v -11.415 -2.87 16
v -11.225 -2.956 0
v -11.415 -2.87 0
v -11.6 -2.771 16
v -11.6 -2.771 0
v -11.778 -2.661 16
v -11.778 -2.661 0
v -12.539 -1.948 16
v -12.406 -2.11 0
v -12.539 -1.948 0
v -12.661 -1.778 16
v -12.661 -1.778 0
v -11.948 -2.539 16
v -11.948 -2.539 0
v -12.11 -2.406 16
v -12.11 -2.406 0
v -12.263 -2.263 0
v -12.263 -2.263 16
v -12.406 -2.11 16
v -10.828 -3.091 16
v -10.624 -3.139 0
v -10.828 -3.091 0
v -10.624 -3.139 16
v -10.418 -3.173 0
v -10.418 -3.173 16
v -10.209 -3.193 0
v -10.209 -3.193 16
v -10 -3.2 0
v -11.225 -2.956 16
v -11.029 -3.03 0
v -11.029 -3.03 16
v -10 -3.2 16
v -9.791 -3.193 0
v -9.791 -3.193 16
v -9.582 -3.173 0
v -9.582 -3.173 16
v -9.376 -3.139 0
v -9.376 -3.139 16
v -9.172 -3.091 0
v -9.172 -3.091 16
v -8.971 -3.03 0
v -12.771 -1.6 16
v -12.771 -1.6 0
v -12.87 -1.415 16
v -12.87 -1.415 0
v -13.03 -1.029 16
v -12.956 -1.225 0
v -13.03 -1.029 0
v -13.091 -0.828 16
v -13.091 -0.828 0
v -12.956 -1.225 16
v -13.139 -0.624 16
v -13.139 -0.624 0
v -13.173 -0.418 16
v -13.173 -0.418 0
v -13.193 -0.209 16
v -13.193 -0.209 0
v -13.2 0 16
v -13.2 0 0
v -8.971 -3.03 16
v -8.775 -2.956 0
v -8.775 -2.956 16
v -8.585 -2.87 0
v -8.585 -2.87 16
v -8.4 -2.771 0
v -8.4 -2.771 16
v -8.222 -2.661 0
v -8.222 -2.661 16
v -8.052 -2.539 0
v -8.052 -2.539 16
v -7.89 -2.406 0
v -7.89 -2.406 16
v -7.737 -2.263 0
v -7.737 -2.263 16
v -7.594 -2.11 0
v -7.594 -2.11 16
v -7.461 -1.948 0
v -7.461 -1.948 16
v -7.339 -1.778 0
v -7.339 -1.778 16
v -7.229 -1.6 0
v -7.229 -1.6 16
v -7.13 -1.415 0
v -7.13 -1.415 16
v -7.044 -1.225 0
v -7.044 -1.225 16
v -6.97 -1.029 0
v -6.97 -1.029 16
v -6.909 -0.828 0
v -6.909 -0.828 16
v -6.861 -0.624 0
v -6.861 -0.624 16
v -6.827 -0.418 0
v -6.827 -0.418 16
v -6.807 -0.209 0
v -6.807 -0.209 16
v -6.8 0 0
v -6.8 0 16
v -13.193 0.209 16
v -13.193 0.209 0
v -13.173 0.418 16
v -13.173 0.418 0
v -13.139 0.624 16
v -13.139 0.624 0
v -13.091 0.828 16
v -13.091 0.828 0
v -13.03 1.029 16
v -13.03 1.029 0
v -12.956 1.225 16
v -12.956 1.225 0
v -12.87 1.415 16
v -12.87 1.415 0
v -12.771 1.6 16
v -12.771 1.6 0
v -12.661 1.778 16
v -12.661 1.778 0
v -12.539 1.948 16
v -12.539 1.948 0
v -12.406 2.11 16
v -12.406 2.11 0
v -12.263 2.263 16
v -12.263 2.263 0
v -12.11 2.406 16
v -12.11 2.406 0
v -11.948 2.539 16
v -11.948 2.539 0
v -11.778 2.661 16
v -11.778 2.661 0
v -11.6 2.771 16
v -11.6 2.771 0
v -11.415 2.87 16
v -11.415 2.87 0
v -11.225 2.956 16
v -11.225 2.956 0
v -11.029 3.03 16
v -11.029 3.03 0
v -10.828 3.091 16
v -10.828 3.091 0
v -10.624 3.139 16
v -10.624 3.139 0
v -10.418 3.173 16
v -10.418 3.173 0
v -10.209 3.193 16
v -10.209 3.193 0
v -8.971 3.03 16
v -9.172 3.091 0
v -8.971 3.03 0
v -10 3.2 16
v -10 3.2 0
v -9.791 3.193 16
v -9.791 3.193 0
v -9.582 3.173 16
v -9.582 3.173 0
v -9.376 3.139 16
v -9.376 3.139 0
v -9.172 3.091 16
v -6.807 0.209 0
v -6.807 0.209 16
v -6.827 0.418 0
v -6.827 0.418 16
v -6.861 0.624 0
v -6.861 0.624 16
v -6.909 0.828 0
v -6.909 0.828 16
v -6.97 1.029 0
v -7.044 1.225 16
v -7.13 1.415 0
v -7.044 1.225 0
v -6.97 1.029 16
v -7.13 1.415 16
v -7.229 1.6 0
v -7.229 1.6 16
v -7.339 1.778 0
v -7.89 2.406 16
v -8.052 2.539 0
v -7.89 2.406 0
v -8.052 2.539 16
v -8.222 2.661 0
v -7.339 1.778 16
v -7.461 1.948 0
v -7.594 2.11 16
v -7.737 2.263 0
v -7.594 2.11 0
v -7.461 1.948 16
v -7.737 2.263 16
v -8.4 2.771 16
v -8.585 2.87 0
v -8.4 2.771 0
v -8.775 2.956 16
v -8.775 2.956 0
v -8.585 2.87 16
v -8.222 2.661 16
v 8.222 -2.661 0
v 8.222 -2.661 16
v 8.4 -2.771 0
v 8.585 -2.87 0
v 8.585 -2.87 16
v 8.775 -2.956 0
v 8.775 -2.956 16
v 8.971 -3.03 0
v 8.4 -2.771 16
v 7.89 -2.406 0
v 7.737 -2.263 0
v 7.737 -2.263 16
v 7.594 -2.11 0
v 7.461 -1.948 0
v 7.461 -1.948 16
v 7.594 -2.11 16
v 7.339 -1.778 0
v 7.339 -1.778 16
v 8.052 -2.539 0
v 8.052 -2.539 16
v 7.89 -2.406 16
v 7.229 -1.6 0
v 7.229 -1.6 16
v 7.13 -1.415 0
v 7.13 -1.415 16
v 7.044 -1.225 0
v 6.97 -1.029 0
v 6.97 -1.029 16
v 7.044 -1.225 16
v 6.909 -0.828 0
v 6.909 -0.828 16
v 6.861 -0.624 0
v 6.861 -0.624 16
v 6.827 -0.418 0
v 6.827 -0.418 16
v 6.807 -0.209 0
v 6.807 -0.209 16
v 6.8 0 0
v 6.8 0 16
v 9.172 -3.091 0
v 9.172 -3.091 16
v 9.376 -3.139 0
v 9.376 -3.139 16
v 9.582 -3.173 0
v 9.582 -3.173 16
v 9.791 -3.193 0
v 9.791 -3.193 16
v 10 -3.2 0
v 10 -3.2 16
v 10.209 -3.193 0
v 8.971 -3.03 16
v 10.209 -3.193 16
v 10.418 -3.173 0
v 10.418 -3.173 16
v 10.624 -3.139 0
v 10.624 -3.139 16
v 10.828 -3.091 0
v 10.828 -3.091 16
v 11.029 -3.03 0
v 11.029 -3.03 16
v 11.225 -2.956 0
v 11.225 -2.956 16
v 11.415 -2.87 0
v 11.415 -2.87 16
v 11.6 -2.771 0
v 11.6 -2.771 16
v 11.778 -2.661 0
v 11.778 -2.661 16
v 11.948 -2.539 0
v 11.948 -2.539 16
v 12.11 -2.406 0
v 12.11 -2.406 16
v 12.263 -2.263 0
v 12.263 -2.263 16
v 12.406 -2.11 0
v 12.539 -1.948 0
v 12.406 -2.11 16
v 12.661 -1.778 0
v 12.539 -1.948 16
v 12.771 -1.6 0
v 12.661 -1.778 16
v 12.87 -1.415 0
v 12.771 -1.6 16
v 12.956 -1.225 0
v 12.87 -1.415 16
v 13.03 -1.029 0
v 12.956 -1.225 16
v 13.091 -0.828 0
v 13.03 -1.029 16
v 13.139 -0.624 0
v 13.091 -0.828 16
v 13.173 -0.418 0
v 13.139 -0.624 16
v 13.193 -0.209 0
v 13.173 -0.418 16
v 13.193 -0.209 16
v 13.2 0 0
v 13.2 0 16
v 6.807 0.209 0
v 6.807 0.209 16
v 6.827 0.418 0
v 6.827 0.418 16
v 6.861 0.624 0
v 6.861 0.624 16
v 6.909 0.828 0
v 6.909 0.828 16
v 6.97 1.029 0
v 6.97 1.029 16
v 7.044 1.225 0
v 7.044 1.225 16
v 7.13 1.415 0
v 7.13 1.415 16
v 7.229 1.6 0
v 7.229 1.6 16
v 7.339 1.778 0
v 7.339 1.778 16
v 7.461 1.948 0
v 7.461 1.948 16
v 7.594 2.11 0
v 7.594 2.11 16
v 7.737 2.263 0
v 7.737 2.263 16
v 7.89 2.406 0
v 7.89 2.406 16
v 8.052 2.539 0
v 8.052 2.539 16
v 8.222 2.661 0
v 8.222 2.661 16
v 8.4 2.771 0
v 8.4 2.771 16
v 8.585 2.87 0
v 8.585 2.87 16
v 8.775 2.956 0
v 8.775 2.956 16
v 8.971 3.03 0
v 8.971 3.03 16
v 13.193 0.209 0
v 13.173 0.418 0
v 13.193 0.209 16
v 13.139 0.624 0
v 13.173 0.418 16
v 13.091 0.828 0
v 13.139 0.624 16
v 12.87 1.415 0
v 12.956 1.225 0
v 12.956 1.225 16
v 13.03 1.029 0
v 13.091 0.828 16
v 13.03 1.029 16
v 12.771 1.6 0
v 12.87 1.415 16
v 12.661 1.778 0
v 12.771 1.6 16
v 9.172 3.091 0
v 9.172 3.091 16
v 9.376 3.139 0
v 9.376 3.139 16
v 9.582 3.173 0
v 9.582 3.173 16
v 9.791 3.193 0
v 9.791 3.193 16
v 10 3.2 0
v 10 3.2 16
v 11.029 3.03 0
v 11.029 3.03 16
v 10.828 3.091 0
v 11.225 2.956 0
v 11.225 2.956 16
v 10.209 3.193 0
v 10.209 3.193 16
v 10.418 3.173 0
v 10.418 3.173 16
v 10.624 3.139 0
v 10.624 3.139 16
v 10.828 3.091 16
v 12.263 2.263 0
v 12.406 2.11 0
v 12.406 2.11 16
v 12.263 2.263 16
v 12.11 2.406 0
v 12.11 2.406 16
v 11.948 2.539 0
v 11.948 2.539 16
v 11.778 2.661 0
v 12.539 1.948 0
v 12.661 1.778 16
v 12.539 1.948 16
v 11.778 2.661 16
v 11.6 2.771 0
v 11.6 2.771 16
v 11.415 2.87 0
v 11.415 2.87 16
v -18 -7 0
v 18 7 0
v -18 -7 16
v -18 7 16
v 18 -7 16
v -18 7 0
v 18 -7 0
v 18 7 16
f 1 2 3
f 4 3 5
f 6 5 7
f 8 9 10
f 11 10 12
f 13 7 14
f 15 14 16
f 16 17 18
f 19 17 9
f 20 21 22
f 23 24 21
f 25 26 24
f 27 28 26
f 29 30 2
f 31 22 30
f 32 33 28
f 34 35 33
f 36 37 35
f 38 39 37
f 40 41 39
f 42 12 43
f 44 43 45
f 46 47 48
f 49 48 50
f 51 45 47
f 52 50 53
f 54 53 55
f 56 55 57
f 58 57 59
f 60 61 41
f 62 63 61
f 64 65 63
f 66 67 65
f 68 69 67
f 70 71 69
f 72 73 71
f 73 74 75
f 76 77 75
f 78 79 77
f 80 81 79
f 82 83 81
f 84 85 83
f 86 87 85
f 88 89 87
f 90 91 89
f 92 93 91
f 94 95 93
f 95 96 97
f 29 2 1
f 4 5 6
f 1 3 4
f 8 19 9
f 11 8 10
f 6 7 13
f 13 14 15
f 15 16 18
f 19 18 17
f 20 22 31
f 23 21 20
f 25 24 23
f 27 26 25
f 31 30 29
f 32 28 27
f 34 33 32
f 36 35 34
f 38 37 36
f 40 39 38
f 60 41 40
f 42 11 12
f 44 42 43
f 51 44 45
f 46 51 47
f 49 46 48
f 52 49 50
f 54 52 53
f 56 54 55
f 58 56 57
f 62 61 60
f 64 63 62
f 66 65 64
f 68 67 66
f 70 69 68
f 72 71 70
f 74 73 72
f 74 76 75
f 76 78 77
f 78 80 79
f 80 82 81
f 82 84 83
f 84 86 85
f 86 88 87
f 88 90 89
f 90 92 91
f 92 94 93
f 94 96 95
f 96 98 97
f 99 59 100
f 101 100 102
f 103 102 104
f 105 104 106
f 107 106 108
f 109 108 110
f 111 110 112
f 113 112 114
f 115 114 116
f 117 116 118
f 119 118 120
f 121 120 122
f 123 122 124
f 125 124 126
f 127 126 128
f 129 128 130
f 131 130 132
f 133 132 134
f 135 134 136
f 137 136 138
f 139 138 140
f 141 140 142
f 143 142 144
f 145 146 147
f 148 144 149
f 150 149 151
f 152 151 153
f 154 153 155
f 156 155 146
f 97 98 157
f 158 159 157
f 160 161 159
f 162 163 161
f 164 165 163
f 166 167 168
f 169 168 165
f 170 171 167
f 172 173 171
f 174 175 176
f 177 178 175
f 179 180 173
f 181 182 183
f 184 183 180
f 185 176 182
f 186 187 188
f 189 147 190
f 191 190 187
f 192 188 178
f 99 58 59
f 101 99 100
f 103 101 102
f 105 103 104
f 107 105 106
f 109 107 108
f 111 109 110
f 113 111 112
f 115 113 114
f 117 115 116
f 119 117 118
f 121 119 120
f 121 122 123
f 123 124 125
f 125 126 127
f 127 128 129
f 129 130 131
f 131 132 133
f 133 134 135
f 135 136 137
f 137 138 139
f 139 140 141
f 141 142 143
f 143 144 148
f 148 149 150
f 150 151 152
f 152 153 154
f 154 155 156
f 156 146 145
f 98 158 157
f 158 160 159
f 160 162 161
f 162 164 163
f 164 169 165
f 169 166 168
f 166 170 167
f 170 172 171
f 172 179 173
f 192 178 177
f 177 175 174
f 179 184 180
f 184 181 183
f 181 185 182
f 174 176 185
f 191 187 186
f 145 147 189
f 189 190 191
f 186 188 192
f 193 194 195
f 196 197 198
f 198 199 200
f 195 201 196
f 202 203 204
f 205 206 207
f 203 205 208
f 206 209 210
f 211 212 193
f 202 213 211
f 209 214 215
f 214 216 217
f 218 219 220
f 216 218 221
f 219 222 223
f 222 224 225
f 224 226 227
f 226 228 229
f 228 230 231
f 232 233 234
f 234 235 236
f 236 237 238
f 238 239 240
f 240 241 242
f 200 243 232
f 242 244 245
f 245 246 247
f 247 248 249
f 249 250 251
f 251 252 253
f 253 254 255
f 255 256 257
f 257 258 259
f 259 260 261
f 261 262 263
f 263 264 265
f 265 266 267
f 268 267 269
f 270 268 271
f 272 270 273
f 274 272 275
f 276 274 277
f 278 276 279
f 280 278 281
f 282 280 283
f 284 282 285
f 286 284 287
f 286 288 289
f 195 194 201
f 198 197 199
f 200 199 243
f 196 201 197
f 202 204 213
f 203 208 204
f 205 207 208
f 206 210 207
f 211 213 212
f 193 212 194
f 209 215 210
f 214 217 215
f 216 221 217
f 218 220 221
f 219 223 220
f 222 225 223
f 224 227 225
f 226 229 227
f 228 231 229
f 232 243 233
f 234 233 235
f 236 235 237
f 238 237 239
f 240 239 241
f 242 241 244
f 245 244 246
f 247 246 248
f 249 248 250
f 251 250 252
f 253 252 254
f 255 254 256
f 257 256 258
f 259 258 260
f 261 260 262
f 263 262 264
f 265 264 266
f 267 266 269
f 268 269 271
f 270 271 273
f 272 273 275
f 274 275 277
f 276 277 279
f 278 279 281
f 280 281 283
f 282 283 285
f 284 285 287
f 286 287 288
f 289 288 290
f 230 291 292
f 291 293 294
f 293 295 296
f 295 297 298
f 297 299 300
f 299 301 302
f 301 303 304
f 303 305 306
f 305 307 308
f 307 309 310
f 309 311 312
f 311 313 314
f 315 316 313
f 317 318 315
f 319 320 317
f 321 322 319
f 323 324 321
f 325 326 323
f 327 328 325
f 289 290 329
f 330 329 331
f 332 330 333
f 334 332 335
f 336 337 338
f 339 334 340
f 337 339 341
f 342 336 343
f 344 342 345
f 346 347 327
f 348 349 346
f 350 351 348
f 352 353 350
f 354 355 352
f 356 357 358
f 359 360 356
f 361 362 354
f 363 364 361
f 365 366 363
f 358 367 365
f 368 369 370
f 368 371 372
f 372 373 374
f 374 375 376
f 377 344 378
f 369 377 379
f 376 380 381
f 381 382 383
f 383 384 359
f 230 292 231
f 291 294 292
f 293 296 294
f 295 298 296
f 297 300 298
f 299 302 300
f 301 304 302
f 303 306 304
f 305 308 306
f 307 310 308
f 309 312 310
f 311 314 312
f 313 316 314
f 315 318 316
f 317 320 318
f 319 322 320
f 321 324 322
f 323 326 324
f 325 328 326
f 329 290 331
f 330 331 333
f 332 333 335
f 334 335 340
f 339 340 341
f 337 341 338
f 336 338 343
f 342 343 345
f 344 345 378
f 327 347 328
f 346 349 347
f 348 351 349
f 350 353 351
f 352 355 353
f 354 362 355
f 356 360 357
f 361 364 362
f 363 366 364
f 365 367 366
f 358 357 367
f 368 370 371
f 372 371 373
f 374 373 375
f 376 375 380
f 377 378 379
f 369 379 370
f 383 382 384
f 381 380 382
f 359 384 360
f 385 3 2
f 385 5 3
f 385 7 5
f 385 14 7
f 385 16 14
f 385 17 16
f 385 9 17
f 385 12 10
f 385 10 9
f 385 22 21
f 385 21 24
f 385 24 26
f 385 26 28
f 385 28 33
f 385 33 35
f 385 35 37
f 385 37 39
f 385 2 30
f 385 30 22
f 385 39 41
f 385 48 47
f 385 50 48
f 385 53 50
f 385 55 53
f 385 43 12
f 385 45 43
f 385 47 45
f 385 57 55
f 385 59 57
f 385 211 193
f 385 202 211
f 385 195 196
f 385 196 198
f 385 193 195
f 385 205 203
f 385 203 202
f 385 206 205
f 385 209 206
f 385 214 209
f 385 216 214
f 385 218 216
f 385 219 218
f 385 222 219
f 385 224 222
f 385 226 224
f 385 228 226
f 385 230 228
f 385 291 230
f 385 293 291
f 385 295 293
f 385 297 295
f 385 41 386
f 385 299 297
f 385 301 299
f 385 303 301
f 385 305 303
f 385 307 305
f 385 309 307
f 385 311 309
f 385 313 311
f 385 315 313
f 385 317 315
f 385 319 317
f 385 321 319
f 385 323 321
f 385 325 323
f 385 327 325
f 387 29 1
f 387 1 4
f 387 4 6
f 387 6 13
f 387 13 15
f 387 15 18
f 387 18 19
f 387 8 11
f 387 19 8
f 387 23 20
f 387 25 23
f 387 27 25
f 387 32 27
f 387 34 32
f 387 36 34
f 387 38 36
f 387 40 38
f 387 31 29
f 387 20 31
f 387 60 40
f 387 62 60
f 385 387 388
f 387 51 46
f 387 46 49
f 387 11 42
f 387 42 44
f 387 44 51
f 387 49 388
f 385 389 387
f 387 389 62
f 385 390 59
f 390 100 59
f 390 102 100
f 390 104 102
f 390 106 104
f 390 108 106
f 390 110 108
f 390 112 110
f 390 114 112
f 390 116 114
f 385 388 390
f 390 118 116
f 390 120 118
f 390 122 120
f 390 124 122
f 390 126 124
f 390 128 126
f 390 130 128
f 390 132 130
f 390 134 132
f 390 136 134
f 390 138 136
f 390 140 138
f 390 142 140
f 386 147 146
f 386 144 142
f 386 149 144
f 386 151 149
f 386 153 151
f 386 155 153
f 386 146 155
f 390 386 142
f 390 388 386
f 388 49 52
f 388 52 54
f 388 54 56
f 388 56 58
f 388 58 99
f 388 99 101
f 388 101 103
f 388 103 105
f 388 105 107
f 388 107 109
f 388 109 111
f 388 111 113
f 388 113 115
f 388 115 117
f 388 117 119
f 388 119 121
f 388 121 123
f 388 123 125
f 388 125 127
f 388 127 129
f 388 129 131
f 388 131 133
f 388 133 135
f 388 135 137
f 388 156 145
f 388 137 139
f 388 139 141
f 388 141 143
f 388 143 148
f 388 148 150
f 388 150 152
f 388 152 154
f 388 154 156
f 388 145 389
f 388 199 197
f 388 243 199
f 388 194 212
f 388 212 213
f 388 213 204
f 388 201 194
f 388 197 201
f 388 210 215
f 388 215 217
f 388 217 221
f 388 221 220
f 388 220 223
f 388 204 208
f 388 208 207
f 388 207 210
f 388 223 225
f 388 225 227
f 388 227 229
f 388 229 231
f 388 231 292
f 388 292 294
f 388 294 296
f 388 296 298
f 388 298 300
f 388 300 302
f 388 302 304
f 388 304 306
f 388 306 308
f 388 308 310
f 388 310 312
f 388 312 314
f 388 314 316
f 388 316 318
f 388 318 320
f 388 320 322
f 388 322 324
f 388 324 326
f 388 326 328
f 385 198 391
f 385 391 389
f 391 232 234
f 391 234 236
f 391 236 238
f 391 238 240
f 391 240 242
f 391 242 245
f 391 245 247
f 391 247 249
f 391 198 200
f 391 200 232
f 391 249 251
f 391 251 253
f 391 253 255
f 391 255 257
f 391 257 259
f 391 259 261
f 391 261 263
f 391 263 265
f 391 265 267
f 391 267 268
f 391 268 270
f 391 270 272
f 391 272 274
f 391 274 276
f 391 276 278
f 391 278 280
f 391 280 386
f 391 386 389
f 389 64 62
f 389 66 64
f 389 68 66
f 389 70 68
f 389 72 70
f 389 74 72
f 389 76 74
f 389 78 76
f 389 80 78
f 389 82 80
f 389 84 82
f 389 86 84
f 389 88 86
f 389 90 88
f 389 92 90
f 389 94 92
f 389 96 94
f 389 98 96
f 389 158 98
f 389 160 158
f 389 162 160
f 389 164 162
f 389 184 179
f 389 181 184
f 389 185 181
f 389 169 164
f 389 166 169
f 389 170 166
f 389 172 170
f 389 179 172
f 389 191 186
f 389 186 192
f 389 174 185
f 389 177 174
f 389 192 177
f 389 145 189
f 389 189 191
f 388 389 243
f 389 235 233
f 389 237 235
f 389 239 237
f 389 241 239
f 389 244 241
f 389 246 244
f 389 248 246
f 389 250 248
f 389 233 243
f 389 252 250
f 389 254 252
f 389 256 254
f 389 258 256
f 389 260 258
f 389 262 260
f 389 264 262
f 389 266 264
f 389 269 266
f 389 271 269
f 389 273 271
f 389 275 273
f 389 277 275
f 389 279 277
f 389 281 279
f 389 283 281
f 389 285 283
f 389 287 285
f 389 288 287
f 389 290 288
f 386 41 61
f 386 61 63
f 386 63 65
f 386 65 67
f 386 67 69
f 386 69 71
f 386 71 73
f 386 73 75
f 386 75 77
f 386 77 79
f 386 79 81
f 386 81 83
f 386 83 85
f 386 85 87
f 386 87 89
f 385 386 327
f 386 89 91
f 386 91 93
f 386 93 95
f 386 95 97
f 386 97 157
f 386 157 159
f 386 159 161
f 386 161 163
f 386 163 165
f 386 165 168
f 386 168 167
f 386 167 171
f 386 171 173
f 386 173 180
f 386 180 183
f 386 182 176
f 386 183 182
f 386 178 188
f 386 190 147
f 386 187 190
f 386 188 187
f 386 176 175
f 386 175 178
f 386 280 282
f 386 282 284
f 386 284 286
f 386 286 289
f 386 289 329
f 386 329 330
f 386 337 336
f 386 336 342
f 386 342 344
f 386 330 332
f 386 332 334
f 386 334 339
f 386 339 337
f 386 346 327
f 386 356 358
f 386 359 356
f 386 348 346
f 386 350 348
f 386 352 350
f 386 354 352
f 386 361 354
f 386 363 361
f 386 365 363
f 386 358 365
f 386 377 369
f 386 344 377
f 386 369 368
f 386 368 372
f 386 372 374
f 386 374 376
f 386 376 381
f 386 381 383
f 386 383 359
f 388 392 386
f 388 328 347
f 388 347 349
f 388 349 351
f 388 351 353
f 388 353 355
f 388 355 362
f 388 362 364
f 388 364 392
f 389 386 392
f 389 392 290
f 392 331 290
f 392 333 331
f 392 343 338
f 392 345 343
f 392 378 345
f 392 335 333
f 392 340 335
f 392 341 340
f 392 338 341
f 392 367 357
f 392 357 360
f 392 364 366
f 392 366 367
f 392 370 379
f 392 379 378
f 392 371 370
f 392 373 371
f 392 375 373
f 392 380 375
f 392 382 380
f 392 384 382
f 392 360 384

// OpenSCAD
// file: design_params.scad
// ============================================================
// STARLING SHARED DESIGN PARAMETERS — single source of truth for
// every dimension two parts must agree on.
//
// Consumers:
//   - every part in cad/ does        include <design_params.scad>
//   - parts in cad/calibration/ do   include <../design_params.scad>
//   - scripts/check_params.py FAILS the build if any of these names
//     is re-declared anywhere else — change values HERE only.
//
// Keep this file to simple `name = value;` lines so the tooling can
// parse it. One-off experiments: `openscad -D name=value` beats the
// include, no need to edit this file.
// ============================================================

// --- The paper tube (bought part, consumable) ---
// BOTH diameters are measured, not derived from a nominal wall thickness:
// paper wall varies batch to batch, so the OD does not predict the bore.
// Print the two calibration gauges with every new batch of tube, and type
// the number engraved on the best-fitting variant in here.
tube_od     = 52.95;   // sleeves slide OVER this — cad/calibration/tube_fit_ring.scad
tube_id     = 46.95;   // plugs slide INTO this  — cad/calibration/tube_bore_gauge.scad
tube_length = 540;

// --- Printed-part fits ---
sleeve_clearance = 0;   // added to every sleeve bore diameter; tune via the fit ring
plug_clearance   = 0;   // subtracted from every plug OD; tune via the bore gauge
fit_tol          = 0.2; // clearance for printed slots/pockets
sleeve_wall      = 3;   // wall thickness of printed sleeves

// --- Wing spar chain (rib holes = adapter sockets = carbon rods) ---
spar_rod_d    = 6;     // carbon rod diameter
spar_hole_d   = 6.2;   // printed hole for that rod
spar_spacing  = 20;    // chordwise distance between the two spars
spar_y_offset = 1.5;   // spar line sits this far above the rib chord line
spar_x_pos    = 0.4;   // rear spar chord fraction (front spar sits
                       // spar_spacing further forward, at 20% on a 100 chord)
spar_socket_lift = 1;  // adapter socket floor sits this far above the sleeve
                       // bore — rods must never reach the paper tube or they
                       // jam against it and block the CG slide

// --- Wing geometry ---
rib_chord     = 100;
naca_code     = 2415;  // cambered lifting section
rib_thickness = 2;
skin_thickness = 5;    // foam-board skin (bought sheet); the skin cradle
                       // jig offsets the rib profile by this
servo_rib_thickness = 4; // the servo rib prints thicker — it reacts the whole
                         // servo/linkage load until the skin is glued on
tip_rib_flat  = 3;     // full-profile band at the tip rib's inboard face;
                       // the foam skin's outboard edge lands on it
tip_spar_socket = 6;   // blind spar-socket depth in the tip rib; the spar
                       // rods are cut so they END inside these sockets, so
                       // the assembly's spar length derives from this too
aileron_te_gap  = 2;   // extra TE crop beyond the hinge line so the aileron
                       // LE can swing under the taped top hinge (see
                       // cad/wing_rib.scad for the geometry rationale)

// --- Wing adapter <-> root rib interface ---
wing_tab_thickness = 11; // adapter tab (socket carrier; ribs sit outboard of it)
wing_tab_span      = 15; // how far the tab reaches out from the sleeve
adapter_length     = 40; // sleeve length = tab chord extent

// --- Wing span layout (per panel, X from the fuselage centerline) ---
// Span is a first-class tunable: resize the wing per mission and rod stock
// by editing these literals, then satisfy scripts/wing_check.py, which
// enforces the relationships between them (spar fit window, station order,
// arm-slot clearance) and prints the spar cavity so rods can be cut to
// match whatever stock is on hand.
rib_stations         = [47, 120, 200]; // full-chord standard ribs
wing_servo_station   = 280;  // servo rib REPLACES the row rib here
aileron_rib_stations = [360];// TE-cropped ribs inside the aileron span
aileron_root_station = 283;  // = wing_servo_station + servo_rib_thickness/2
                             //   + 1 mm gap (wing_check.py enforces this)
aileron_span         = 120;
tip_station          = 440;  // tip rib inboard face — THE span knob
spar_rod_len         = 417;  // carbon rod length per spar per side (cut from
                             // stock; one 500 mm kite rod covers this with a
                             // single cut) — wing_check.py verifies the fit

// --- Stations along the tube (assembly; wing slides for CG trim) ---
wing_station       = 300; // wing adapter position, measured from the motor face
tail_tube_stop     = 54;  // tube bottoms out here inside the tail sleeve (rim top)
nose_sleeve_length = 20;  // how far the nose cone slides over the tube

// --- Servos (9 g / SG90 class) ---
servo_body   = [23, 12.2]; // [length, width]
servo_flange = [32, 12.2];
servo_height = 22;         // body height incl. shaft boss, without horn

// --- Control system (internal servos, wire pushrods through wall slots) ---
ctrl_chord       = 22;   // control-surface chord (elevator / rudder / aileron)
ctrl_thickness   = 4;    // control-surface root thickness = fin thickness
hinge_groove_w   = 1.6;  // groove for the hinge strip/tape, both fin TE and surface LE
hinge_groove_d   = 2.5;
pushrod_d        = 1.2;  // piano-wire pushrod, attached at the TIP of both arms
pushrod_slot_w   = 2.5;  // wall slot the pushrod moves in
pushrod_slot_len = 18;   // slot channel length along the rod (see throw_check.py)
servo_horn_r     = 10;   // full arm length — the wire connects at the far end
servo_travel_deg = 45;   // used one-sided travel; the arm can do ~±90 (180 total)
                         // but the linkage stays near-linear only within ±45
ctrl_horn_r      = 10;   // control-surface horn = servo horn -> 1:1 linkage
aileron_arm_plane = 9.2; // the aileron servo's arm plane sits this far
                         // outboard of the servo-rib station (flange seat +
                         // shaft boss + horn plate)
aileron_arm_x_te  = 39;  // arm-tip chord position, measured from the TE —
                         // sets where the skin's arm slot goes (gated by
                         // wing_check.py against the spar and aileron notch)

// Tail linkage geometry. Three 22 mm-wide servos cannot share one height
// inside the Ø53 bore (corner collisions), so they are STAGGERED in Z:
// the two elevator servos sit HIGH (opposite sides, they coexist), the
// rudder servo sits LOW. Each wire attaches at the arm tip and exits
// through an angled wall slot raked toward its surface horn.
tail_servo_z           = 33; // bottom (shaft end) of the ELEVATOR servo bodies
tail_slot_angle        = 42; // elevator rod angle off the fuselage axis
tail_rudder_z          = 9;  // bottom (shaft end) of the RUDDER servo body
tail_rudder_slot_angle = 56; // rudder rod angle off the fuselage axis

// --- Motor (22xx class, rear pusher) ---
motor_shaft_hole_d = 10;
motor_screw_hole_d = 4;
motor_pattern_x    = 16;  // screw pattern
motor_pattern_y    = 19;
// main file
// RIB SQUARE JIG — assembly tooling, not part of the airframe. Slides
// along both spar rods next to a rib; its flat face holds the rib
// perpendicular to the rods while the CA sets. Two spar holes give it the
// angular registration a single rib lacks (a thin rib can tilt about the
// line through its own spar holes).
//
// Use: thread the jig onto the rods behind the rib being glued, press the
// rib flush against the jig face, glue, slide the jig to the next station.
// The holes are a slide fit — looser than the calibrated press-in
// spar_hole_d, snug enough that the face stays square.
//
// Print flat on the large face, holes horizontal (they bridge fine at
// this diameter).

include <design_params.scad>

jig_slide_fit = 0.2;             // added to spar_hole_d for the slide fit
jig_thickness = 16;              // along the rods; sets the squareness
jig_margin    = 8;               // material beyond each hole
jig_height    = 14;

$fn = 96;

difference() {
    translate([-spar_spacing / 2 - jig_margin, -jig_height / 2, 0])
        cube([spar_spacing + 2 * jig_margin, jig_height, jig_thickness]);
    for (dx = [-spar_spacing / 2, spar_spacing / 2])
        translate([dx, 0, -1])
            cylinder(h = jig_thickness + 2, d = spar_hole_d + jig_slide_fit);
}
